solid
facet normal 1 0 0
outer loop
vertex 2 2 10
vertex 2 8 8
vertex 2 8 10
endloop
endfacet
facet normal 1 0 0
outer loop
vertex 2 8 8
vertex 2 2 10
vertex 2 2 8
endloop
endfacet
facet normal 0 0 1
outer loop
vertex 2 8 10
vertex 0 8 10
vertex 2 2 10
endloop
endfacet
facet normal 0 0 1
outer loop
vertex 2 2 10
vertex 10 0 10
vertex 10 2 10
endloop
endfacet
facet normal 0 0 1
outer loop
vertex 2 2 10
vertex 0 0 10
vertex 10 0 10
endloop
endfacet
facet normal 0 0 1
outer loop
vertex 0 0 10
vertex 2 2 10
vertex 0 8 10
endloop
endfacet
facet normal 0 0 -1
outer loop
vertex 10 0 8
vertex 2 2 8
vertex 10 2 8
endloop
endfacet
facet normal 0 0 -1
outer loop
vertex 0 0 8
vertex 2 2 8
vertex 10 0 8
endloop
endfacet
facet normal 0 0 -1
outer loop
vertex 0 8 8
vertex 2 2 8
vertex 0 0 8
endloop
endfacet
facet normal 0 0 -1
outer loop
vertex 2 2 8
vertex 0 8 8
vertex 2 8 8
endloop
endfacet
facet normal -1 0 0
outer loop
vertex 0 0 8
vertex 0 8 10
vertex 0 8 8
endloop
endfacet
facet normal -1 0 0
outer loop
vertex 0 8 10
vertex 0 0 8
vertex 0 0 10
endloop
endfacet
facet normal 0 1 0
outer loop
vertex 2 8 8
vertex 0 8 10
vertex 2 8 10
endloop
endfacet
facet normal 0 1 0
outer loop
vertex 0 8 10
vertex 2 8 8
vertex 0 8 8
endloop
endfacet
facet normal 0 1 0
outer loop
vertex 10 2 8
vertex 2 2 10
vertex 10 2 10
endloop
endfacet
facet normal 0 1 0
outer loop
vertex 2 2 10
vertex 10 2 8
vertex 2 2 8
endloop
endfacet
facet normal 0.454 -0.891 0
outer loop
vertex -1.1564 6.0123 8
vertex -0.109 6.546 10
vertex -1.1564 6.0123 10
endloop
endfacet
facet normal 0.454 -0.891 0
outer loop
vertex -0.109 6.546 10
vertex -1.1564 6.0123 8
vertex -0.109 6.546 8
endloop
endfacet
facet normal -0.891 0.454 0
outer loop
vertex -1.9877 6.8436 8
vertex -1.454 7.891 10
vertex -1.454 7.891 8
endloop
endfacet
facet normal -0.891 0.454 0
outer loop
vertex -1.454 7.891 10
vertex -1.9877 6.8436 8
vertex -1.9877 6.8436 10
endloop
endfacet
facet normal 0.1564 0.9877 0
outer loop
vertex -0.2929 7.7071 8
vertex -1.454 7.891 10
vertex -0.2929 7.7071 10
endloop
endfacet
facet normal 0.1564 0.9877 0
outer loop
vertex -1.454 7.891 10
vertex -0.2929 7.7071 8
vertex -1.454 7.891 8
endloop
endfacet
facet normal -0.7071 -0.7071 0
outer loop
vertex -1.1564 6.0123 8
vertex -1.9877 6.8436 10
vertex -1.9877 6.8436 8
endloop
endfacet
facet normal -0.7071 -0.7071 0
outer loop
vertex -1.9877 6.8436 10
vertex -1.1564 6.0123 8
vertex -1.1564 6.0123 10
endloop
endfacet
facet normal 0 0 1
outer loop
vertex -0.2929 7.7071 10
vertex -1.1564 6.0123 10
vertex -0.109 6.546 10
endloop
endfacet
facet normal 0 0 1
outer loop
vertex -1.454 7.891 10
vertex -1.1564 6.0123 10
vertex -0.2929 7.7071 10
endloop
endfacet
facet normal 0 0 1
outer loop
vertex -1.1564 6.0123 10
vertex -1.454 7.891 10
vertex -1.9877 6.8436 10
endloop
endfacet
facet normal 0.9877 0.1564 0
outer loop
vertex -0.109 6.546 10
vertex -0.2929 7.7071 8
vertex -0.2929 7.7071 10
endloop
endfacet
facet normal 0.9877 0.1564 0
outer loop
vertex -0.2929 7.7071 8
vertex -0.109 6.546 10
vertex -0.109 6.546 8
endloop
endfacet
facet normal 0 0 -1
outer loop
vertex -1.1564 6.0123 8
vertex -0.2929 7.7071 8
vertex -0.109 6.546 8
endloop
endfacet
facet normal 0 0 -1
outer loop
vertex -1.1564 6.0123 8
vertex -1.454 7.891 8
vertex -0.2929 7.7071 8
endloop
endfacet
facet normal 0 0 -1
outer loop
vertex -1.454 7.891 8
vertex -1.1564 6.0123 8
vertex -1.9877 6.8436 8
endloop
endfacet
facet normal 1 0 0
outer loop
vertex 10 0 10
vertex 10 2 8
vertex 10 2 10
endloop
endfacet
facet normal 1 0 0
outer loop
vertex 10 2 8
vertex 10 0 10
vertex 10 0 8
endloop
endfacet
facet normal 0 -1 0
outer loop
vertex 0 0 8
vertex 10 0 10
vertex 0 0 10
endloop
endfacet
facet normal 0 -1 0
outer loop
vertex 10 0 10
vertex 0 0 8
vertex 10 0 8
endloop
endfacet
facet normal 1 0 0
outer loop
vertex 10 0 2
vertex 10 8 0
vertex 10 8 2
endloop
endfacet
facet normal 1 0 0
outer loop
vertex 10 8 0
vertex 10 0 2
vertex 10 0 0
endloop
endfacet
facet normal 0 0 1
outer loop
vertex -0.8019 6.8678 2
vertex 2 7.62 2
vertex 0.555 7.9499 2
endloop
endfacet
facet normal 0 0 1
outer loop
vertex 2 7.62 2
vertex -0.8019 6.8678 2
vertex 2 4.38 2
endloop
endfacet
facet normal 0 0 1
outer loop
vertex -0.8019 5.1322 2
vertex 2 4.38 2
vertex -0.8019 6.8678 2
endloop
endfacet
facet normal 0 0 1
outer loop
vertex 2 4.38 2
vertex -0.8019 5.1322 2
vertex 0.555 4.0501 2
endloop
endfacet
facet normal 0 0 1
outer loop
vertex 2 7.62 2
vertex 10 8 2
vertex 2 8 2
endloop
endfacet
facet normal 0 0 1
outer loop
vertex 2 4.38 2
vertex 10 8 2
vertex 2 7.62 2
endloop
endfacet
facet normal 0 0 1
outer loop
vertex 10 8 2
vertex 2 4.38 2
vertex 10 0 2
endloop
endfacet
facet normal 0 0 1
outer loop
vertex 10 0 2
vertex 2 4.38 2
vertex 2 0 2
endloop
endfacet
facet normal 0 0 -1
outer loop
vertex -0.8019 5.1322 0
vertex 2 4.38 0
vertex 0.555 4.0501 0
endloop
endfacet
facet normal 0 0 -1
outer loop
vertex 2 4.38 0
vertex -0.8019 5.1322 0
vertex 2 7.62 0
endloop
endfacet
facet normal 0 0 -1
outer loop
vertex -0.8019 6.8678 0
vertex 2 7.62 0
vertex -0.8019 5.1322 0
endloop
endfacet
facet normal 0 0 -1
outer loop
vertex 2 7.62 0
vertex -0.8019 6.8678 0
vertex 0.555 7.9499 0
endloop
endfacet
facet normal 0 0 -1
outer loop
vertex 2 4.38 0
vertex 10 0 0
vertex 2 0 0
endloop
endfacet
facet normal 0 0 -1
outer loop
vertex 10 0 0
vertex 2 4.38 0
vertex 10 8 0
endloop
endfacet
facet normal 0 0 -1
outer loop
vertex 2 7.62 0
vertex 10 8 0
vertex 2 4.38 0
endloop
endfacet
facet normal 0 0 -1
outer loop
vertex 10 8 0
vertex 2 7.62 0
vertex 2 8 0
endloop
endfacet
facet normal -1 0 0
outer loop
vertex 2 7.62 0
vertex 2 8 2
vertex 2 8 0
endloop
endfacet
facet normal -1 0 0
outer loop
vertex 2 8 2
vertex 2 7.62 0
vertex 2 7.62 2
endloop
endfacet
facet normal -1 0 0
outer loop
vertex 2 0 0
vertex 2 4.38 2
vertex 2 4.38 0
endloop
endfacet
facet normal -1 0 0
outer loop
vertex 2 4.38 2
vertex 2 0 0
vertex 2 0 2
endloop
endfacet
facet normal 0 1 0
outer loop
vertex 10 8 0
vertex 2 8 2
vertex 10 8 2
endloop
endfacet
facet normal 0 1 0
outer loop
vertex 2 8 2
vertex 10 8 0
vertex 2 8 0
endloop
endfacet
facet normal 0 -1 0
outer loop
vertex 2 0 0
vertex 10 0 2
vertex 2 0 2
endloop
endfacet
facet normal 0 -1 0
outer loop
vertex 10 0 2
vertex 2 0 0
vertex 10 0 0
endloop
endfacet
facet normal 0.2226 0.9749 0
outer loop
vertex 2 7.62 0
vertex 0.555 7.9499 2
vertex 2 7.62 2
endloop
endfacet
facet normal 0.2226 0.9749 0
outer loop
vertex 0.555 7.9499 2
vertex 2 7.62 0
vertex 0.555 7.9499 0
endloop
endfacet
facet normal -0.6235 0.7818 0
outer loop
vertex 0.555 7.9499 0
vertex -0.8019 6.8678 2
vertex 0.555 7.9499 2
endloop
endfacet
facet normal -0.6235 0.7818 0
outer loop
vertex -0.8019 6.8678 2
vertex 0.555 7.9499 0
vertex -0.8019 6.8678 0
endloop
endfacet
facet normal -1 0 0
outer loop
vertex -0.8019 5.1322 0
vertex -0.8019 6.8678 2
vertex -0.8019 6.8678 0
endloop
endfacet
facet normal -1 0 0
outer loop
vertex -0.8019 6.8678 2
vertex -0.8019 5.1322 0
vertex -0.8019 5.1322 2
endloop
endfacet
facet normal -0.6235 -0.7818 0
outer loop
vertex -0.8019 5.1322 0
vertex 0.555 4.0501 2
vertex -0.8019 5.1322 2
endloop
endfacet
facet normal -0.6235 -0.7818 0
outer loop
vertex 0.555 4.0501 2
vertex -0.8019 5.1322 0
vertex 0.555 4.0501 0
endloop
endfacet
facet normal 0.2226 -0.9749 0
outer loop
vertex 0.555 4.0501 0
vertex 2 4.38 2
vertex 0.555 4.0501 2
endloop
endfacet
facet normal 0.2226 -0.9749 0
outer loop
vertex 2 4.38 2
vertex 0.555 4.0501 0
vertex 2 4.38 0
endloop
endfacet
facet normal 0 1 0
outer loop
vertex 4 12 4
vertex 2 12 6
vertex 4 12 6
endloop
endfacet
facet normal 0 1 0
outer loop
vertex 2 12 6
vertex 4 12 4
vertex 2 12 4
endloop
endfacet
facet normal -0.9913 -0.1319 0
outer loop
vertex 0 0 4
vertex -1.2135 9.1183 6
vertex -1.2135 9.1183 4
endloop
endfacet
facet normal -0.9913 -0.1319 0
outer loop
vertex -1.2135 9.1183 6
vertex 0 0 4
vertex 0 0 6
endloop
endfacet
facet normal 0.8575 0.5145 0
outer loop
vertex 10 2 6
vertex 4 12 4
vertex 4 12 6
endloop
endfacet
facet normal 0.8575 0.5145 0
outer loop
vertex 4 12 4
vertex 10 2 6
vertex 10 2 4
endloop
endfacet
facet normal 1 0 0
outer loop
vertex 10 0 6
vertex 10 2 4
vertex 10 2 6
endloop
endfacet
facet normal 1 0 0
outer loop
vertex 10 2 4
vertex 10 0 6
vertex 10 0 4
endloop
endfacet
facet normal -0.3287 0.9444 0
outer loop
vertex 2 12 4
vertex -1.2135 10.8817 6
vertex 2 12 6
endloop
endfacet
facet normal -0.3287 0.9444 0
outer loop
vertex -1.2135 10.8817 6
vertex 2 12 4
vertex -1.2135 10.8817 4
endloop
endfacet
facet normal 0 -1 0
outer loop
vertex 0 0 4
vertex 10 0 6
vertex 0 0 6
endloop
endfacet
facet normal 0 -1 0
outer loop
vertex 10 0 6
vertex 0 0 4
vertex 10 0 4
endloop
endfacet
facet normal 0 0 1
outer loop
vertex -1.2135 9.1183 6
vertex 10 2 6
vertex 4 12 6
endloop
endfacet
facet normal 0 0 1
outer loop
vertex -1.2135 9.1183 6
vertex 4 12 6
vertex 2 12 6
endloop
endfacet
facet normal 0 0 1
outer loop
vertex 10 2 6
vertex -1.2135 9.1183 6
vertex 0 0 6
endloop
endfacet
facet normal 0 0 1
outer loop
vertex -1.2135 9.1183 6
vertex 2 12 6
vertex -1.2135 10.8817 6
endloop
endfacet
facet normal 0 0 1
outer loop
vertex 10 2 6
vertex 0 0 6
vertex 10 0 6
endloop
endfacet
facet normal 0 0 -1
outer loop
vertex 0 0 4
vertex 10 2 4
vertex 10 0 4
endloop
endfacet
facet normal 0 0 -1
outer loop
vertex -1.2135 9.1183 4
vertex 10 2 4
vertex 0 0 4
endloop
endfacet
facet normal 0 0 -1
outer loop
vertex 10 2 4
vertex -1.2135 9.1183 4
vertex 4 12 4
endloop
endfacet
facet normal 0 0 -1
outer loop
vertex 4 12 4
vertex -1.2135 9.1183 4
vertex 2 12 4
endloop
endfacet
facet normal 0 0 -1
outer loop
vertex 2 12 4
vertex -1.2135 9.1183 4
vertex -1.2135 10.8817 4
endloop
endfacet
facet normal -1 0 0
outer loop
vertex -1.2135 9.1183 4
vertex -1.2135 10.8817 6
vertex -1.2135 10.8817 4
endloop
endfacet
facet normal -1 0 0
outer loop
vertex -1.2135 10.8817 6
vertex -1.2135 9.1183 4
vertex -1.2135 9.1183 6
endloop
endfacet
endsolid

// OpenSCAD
// Define bracket dimensions
module bracket_A() {
    // Longer arm
    cube([10, 2, 2]);
    // Shorter arm with rounded edge
    translate([0, 2, 0]) {
        cube([2, 6, 2], center = false);
        translate([-1, 5, 0])
            rotate([0, 0, 45])
            cylinder(h = 2, r = 1, center = false);
    }
}

module bracket_B() {
    // Rectangular features with more pronounced corner curve
    hull() {
        cube([10, 2, 2]);
        translate([2, 6, 0])
            cube([2, 6, 2], center = false);
        translate([0, 10, 0])
            cylinder(h = 2, r = 1.5, center = false);
    }
}

module bracket_C() {
    // Distinct corner rounding with different lengths
    translate([2, 0, 0]) {
        cube([8, 8, 2]);
        translate([-1, 6, 0])
            cylinder(h = 2, r = 2, center = false);
    }
}

// Assembly of the brackets based on positional relationships
module assembly() {
    translate([0, 0, 8])
        bracket_A();
    translate([0, 0, 4])
        bracket_B();
    bracket_C();
}

// Generate the model
assembly();
